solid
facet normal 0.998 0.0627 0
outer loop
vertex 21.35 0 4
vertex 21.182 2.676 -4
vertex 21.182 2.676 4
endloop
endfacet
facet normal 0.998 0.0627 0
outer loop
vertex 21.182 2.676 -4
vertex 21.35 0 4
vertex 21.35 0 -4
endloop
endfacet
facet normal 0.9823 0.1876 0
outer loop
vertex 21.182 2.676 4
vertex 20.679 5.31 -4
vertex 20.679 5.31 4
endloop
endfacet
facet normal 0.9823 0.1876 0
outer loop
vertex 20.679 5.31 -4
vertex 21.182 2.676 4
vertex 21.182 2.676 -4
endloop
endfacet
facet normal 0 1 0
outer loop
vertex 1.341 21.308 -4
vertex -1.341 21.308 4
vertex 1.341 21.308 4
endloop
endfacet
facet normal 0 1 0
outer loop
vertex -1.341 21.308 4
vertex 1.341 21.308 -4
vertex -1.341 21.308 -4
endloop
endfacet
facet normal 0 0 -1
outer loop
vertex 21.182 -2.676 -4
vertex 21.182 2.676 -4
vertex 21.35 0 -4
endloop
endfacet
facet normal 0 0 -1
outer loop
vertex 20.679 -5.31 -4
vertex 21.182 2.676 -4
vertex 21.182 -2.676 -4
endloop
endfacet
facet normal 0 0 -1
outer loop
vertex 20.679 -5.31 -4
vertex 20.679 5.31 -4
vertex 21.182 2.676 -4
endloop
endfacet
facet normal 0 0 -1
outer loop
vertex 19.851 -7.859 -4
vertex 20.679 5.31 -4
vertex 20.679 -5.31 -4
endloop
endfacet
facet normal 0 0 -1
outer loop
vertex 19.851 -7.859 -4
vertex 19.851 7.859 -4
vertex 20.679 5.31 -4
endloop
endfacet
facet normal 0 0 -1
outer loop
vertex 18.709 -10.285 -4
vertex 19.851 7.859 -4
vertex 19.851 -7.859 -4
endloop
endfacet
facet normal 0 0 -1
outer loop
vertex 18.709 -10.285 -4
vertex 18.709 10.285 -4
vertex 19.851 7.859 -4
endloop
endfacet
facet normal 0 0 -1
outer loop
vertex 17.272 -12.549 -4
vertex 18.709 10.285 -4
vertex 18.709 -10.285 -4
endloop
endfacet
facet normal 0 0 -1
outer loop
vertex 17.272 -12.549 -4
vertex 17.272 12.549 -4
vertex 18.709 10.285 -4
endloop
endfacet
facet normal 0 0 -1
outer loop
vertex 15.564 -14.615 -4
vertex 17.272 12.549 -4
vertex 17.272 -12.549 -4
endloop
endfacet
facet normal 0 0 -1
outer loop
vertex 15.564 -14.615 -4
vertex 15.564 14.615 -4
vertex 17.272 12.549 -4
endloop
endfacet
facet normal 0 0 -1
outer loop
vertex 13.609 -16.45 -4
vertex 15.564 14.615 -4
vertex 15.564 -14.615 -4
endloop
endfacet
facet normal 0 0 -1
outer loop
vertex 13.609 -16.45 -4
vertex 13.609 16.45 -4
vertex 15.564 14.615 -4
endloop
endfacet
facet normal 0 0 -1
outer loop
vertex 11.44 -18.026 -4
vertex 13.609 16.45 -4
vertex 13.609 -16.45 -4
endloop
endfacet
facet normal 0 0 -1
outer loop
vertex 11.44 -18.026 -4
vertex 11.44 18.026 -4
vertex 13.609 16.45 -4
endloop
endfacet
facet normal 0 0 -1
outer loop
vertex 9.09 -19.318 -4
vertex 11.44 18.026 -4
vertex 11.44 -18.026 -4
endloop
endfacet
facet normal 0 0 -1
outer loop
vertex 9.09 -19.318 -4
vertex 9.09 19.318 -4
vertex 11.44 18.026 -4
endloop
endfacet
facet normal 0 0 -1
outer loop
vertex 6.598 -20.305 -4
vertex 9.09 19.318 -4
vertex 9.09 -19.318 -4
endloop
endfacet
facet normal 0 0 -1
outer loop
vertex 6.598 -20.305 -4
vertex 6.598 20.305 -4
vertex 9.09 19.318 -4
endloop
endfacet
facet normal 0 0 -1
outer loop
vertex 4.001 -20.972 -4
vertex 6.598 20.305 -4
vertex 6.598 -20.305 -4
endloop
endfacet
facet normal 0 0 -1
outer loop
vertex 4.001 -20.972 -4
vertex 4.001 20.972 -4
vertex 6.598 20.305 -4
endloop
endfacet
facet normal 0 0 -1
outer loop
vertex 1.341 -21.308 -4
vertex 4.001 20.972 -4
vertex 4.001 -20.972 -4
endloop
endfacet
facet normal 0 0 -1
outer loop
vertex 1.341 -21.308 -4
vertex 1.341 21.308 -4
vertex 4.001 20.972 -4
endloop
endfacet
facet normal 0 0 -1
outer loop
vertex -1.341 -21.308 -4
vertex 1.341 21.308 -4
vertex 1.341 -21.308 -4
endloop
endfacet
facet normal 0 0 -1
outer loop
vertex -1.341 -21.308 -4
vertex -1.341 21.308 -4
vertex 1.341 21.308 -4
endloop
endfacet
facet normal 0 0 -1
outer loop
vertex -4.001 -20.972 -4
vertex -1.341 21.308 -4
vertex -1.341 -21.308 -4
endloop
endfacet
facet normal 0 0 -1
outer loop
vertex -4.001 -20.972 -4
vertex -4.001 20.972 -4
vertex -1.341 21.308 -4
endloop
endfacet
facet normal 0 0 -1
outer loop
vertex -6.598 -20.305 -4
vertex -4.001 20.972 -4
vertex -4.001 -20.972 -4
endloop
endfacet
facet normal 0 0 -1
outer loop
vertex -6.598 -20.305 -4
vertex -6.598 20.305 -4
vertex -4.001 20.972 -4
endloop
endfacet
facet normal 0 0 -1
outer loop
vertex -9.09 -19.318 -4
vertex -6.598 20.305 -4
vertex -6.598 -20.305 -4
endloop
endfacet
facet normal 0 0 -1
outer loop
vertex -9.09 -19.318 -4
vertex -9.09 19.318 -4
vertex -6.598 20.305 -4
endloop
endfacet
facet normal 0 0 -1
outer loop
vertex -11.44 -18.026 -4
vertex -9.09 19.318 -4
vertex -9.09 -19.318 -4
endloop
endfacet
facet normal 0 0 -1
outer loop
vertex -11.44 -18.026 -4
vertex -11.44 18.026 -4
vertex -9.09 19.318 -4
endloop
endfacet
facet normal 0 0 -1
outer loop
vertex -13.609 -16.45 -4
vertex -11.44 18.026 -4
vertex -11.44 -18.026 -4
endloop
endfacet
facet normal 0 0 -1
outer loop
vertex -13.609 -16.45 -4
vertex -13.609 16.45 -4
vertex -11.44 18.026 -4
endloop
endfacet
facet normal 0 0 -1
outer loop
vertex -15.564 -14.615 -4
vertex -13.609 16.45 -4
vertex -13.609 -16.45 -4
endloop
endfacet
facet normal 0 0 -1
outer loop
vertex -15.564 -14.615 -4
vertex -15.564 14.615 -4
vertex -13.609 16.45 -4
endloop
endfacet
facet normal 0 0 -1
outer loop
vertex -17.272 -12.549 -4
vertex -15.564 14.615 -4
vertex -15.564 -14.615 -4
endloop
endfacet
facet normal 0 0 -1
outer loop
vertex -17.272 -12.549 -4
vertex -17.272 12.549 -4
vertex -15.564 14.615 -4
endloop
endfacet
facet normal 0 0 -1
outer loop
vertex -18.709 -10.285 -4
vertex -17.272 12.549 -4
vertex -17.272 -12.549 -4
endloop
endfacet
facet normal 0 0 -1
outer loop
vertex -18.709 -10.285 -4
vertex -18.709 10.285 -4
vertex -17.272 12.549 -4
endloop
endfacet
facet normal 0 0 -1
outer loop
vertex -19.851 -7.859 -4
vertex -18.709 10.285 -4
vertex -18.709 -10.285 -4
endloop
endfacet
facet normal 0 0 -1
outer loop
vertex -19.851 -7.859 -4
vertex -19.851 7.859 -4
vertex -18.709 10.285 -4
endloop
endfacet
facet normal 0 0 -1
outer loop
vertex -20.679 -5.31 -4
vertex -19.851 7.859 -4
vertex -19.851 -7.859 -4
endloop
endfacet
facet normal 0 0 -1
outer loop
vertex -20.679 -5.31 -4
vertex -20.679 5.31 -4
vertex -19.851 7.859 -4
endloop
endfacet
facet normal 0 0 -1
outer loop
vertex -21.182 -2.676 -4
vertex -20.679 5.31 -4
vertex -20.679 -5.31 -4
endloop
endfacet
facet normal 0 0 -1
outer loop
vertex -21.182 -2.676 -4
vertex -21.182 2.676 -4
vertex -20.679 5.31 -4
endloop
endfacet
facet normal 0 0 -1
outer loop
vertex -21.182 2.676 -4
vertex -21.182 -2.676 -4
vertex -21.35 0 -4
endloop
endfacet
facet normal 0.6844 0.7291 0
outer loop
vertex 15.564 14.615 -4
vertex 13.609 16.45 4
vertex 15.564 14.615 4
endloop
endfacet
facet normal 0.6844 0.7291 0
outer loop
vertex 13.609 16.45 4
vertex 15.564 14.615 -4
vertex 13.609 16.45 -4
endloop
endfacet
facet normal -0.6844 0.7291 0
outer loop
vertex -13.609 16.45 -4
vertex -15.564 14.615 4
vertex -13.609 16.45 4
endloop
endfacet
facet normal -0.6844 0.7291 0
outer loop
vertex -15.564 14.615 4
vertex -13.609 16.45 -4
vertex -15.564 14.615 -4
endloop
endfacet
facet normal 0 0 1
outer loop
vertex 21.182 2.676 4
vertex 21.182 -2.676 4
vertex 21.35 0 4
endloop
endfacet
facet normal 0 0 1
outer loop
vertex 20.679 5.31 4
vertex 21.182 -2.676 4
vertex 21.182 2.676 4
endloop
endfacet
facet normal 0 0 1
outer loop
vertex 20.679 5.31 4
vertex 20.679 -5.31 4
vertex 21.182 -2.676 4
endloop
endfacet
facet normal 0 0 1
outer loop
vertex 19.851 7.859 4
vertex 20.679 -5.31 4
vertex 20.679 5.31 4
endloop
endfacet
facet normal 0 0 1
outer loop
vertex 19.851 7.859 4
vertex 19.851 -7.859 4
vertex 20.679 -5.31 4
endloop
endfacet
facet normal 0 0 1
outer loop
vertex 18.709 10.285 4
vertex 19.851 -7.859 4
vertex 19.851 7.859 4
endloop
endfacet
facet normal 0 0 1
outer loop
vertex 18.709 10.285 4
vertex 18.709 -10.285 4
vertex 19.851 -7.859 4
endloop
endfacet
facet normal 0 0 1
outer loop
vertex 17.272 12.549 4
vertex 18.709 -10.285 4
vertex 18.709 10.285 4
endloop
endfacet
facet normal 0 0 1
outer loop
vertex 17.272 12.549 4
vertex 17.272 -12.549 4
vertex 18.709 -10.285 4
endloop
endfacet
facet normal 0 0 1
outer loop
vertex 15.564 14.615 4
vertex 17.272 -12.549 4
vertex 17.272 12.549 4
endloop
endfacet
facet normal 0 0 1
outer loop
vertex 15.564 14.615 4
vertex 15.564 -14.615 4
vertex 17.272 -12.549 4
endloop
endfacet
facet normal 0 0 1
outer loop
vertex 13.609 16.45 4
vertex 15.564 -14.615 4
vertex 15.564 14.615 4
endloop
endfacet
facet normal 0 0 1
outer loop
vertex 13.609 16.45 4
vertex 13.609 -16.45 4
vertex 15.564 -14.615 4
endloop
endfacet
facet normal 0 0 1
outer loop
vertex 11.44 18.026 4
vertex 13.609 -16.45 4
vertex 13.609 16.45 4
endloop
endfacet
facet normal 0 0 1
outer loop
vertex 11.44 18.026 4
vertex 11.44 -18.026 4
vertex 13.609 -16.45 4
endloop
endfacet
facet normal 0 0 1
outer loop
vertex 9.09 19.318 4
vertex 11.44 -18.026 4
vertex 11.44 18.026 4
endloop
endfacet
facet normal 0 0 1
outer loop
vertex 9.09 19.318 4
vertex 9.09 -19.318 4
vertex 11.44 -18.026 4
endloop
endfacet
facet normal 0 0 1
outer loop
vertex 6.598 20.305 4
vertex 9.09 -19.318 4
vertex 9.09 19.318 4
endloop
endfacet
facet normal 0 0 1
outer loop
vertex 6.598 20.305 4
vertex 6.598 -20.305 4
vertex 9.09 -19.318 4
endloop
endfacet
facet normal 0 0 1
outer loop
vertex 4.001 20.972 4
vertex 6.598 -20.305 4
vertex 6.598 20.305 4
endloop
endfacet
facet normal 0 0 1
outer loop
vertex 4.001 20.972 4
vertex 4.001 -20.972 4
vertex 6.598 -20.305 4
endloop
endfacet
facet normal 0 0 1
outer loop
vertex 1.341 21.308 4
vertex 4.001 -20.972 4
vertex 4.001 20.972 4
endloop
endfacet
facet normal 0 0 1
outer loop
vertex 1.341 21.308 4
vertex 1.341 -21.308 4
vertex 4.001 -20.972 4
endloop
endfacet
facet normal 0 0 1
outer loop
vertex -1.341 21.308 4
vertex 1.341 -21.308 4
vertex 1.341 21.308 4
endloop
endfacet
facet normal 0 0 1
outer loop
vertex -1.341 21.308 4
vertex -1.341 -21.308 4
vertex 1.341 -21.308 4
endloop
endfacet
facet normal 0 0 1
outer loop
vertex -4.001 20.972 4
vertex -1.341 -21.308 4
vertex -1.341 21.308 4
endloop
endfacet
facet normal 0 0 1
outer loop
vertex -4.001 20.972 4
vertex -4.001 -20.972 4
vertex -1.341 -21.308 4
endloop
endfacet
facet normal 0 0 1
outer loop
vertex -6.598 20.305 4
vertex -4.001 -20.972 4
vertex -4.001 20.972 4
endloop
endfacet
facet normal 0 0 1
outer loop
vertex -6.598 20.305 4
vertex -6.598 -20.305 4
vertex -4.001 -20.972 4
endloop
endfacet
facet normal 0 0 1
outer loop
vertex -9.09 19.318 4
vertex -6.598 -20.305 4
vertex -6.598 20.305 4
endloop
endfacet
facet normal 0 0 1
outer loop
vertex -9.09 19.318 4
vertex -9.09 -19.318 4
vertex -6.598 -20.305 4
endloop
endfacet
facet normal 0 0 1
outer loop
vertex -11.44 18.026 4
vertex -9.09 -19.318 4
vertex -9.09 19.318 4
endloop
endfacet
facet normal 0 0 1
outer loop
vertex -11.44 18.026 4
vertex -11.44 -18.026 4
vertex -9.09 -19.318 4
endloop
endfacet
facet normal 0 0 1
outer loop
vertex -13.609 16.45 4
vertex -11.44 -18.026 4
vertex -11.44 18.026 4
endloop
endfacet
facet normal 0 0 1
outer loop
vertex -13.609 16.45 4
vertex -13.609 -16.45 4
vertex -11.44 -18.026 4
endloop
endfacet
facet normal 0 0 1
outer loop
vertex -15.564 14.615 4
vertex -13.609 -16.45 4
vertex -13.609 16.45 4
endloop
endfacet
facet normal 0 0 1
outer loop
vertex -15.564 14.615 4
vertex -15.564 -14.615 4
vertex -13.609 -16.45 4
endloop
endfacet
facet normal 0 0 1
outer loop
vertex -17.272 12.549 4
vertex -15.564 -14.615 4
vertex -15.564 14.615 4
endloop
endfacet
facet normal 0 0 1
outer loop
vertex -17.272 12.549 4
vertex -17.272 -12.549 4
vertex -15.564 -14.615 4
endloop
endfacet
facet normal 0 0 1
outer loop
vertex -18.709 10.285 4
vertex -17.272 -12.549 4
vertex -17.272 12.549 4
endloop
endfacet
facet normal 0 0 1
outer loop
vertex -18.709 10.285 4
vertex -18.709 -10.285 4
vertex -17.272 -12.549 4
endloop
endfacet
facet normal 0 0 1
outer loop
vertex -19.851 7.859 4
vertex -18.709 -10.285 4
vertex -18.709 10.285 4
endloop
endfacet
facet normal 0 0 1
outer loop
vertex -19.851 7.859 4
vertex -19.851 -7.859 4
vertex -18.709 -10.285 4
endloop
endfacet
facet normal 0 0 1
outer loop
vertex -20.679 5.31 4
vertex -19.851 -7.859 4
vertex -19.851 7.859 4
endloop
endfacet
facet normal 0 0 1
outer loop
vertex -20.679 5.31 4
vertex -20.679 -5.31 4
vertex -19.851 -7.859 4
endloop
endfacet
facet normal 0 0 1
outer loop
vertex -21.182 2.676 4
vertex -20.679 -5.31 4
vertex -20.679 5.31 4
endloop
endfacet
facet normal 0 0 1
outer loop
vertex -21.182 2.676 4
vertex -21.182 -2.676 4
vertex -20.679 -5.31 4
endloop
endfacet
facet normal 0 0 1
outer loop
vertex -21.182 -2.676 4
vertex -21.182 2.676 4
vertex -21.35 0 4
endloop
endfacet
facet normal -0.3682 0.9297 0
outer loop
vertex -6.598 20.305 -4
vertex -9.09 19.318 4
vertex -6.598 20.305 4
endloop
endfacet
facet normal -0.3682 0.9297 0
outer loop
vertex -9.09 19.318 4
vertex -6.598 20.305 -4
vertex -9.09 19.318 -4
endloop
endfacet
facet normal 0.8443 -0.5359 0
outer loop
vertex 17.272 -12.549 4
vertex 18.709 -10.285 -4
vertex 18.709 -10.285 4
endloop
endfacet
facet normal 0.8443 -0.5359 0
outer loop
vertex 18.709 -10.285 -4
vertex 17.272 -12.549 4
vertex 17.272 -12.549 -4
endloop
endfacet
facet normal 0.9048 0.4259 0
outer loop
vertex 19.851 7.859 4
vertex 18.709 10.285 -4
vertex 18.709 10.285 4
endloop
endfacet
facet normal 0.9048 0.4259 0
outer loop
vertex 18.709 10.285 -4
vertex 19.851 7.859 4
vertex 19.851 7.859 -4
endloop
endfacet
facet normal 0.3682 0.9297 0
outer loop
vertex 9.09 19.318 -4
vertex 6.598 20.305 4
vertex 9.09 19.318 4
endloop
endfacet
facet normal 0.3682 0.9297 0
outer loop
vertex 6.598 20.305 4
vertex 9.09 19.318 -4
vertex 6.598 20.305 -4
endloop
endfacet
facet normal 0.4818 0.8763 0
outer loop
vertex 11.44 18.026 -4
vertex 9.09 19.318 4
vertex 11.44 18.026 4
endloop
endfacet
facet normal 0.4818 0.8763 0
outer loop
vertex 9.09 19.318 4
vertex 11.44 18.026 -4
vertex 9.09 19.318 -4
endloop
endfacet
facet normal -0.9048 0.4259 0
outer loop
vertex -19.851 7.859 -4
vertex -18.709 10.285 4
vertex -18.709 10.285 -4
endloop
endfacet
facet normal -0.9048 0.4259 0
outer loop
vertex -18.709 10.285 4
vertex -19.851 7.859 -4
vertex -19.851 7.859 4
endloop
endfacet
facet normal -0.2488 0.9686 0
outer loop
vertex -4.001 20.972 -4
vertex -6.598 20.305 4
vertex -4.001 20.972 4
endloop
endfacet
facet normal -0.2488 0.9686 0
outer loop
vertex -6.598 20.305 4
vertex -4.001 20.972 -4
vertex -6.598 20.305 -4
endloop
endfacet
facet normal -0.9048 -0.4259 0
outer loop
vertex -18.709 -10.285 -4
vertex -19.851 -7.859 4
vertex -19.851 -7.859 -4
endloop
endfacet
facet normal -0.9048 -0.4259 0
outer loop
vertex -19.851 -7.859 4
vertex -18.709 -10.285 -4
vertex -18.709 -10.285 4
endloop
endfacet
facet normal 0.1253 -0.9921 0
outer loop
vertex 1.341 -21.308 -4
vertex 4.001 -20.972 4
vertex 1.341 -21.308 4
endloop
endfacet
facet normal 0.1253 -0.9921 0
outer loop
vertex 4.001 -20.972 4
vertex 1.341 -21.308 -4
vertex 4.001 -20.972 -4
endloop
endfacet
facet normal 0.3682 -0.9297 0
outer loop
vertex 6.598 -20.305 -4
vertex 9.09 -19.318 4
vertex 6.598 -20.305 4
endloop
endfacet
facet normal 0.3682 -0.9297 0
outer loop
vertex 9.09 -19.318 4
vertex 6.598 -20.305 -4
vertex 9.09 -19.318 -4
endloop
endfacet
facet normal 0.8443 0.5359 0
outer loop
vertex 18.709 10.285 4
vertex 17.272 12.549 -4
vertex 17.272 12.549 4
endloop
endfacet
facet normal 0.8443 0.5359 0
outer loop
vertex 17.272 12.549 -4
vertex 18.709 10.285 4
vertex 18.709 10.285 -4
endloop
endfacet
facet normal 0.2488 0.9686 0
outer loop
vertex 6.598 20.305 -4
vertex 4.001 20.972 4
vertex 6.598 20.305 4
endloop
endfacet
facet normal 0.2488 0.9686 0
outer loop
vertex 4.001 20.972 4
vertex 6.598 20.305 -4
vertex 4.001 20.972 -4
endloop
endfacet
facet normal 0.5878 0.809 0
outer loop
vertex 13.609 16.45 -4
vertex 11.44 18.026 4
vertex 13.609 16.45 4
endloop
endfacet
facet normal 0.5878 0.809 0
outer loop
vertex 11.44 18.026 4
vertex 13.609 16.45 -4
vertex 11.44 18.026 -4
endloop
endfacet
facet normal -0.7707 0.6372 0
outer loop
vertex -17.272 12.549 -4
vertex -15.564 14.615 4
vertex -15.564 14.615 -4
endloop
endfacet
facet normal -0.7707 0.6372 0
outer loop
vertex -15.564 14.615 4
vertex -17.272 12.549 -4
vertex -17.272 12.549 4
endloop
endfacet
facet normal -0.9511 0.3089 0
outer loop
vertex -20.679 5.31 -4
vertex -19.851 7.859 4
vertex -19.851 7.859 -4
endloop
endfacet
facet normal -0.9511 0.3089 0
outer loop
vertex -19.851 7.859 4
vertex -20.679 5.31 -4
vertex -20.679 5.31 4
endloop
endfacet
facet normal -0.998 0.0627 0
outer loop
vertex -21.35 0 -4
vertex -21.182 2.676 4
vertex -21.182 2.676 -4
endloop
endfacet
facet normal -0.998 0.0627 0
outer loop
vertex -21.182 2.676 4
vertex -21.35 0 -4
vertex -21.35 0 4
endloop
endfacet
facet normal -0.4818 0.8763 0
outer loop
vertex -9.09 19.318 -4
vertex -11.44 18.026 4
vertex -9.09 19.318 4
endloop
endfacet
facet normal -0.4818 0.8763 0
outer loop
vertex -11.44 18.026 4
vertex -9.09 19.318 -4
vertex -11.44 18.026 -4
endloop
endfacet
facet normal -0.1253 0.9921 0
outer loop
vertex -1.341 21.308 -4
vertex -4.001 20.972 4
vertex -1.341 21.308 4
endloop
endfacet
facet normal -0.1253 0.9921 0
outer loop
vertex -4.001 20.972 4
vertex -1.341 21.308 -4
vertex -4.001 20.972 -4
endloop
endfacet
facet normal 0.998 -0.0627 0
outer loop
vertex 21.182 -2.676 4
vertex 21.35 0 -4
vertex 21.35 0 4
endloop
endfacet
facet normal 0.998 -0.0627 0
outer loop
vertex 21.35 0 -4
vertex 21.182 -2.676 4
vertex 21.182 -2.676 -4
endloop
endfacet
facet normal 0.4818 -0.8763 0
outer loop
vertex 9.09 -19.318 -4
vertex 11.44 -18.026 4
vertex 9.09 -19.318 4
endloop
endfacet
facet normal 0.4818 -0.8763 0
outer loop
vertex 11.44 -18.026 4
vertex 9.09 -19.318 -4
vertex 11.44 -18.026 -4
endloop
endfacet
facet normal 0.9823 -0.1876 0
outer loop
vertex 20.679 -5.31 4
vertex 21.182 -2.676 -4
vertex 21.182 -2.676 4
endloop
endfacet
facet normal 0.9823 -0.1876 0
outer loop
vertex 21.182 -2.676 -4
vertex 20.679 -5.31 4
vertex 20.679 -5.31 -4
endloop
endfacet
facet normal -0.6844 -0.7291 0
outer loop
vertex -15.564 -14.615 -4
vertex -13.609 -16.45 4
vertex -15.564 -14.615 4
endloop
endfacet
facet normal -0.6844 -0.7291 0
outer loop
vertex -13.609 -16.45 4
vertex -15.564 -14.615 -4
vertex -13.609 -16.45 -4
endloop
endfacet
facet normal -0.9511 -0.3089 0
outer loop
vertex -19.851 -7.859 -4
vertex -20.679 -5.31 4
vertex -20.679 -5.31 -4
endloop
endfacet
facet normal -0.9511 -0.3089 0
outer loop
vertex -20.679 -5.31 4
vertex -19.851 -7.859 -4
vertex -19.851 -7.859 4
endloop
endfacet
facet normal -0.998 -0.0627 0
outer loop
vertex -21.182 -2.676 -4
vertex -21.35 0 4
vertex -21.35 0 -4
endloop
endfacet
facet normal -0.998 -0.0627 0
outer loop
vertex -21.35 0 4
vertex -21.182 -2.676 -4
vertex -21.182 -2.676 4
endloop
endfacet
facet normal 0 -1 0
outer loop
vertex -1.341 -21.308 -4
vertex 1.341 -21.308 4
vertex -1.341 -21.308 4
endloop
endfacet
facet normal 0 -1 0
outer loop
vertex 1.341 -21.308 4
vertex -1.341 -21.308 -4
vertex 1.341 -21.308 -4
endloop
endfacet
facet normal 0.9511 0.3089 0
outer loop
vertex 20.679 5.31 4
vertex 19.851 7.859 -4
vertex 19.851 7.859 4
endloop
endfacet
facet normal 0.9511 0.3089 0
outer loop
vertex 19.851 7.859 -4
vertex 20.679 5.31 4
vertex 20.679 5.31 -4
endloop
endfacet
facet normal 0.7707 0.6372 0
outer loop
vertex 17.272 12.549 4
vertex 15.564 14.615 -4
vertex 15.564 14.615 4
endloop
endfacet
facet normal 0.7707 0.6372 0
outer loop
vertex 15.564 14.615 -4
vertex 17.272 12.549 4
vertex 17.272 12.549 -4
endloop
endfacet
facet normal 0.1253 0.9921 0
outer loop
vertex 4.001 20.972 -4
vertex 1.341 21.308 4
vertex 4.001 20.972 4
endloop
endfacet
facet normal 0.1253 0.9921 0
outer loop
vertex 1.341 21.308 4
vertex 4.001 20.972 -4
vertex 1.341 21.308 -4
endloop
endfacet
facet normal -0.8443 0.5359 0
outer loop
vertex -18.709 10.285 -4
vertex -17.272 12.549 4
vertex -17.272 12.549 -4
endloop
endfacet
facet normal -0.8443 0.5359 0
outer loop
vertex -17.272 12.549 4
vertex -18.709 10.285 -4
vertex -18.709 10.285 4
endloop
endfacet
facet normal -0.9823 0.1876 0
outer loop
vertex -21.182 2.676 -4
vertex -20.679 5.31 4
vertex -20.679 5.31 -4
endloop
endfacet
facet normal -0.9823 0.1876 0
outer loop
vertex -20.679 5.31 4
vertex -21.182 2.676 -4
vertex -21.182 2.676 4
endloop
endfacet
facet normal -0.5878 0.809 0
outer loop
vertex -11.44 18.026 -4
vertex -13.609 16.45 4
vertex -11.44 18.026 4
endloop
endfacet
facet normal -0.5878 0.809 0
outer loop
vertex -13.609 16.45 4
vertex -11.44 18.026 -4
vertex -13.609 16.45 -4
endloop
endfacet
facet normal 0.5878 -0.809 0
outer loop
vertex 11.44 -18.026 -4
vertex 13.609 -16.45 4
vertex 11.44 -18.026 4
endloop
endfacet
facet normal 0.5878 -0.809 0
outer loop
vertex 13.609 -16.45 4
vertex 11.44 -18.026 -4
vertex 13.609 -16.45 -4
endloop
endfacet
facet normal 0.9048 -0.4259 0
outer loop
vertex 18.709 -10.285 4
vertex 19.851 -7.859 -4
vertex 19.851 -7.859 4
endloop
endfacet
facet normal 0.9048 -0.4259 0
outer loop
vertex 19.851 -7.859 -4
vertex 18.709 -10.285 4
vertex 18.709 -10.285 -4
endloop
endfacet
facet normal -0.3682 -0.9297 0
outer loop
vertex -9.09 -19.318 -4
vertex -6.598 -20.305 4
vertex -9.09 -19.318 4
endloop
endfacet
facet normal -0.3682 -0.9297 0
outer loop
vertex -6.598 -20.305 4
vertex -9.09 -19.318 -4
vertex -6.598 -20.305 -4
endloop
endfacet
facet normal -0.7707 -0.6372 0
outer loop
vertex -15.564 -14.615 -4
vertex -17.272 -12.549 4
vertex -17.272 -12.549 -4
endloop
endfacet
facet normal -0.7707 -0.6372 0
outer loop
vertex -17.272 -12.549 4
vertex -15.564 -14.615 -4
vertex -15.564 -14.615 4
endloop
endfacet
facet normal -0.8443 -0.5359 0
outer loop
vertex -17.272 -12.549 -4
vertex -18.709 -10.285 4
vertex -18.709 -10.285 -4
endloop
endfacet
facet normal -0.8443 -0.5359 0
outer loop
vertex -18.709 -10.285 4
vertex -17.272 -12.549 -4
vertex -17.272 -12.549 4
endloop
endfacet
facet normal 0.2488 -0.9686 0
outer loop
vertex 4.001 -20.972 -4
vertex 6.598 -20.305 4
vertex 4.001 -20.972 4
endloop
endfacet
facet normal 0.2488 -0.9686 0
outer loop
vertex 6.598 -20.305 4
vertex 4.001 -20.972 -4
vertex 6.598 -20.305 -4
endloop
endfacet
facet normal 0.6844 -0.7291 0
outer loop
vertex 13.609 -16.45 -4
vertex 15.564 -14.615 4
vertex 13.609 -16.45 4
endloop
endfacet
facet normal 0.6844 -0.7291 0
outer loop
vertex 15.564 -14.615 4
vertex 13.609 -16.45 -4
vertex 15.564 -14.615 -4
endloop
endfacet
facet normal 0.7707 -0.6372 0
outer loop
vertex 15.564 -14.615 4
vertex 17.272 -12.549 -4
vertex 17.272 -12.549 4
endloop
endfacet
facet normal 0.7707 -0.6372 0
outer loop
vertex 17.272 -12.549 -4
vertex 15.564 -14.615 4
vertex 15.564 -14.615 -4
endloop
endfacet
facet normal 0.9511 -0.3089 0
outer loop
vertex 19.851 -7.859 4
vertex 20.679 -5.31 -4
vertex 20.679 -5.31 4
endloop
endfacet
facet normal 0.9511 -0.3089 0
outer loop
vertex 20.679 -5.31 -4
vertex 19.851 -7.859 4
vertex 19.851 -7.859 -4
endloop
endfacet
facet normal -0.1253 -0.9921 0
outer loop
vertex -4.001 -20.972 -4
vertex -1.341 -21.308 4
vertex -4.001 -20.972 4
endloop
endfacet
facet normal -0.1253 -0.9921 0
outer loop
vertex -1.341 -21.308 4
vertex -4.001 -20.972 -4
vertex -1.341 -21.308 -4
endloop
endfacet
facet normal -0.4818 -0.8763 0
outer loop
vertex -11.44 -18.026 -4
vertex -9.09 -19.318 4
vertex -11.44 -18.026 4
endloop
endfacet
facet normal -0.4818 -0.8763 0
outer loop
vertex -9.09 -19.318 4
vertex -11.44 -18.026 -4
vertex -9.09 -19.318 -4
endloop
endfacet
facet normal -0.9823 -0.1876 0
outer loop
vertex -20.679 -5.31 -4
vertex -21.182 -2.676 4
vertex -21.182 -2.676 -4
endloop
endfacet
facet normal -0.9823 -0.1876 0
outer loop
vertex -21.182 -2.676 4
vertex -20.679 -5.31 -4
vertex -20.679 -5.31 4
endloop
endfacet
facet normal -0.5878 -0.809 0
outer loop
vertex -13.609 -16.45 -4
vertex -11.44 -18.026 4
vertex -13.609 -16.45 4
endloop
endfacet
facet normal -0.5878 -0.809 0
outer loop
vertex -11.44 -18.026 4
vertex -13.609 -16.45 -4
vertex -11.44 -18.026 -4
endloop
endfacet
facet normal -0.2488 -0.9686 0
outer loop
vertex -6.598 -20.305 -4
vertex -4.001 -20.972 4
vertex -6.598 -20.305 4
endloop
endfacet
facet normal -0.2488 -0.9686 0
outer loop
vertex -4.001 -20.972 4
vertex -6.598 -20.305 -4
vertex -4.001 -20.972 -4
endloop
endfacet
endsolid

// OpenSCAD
$fn = 50;


difference() {
	union() {
		translate(v = [0, 0, -4.0000000000]) {
			cylinder(h = 8, r = 21.3500000000);
		}
	}
	union() {
		translate(v = [0, 0, -100.0000000000]) {
			cylinder(h = 200, r = 0);
		}
	}
}
